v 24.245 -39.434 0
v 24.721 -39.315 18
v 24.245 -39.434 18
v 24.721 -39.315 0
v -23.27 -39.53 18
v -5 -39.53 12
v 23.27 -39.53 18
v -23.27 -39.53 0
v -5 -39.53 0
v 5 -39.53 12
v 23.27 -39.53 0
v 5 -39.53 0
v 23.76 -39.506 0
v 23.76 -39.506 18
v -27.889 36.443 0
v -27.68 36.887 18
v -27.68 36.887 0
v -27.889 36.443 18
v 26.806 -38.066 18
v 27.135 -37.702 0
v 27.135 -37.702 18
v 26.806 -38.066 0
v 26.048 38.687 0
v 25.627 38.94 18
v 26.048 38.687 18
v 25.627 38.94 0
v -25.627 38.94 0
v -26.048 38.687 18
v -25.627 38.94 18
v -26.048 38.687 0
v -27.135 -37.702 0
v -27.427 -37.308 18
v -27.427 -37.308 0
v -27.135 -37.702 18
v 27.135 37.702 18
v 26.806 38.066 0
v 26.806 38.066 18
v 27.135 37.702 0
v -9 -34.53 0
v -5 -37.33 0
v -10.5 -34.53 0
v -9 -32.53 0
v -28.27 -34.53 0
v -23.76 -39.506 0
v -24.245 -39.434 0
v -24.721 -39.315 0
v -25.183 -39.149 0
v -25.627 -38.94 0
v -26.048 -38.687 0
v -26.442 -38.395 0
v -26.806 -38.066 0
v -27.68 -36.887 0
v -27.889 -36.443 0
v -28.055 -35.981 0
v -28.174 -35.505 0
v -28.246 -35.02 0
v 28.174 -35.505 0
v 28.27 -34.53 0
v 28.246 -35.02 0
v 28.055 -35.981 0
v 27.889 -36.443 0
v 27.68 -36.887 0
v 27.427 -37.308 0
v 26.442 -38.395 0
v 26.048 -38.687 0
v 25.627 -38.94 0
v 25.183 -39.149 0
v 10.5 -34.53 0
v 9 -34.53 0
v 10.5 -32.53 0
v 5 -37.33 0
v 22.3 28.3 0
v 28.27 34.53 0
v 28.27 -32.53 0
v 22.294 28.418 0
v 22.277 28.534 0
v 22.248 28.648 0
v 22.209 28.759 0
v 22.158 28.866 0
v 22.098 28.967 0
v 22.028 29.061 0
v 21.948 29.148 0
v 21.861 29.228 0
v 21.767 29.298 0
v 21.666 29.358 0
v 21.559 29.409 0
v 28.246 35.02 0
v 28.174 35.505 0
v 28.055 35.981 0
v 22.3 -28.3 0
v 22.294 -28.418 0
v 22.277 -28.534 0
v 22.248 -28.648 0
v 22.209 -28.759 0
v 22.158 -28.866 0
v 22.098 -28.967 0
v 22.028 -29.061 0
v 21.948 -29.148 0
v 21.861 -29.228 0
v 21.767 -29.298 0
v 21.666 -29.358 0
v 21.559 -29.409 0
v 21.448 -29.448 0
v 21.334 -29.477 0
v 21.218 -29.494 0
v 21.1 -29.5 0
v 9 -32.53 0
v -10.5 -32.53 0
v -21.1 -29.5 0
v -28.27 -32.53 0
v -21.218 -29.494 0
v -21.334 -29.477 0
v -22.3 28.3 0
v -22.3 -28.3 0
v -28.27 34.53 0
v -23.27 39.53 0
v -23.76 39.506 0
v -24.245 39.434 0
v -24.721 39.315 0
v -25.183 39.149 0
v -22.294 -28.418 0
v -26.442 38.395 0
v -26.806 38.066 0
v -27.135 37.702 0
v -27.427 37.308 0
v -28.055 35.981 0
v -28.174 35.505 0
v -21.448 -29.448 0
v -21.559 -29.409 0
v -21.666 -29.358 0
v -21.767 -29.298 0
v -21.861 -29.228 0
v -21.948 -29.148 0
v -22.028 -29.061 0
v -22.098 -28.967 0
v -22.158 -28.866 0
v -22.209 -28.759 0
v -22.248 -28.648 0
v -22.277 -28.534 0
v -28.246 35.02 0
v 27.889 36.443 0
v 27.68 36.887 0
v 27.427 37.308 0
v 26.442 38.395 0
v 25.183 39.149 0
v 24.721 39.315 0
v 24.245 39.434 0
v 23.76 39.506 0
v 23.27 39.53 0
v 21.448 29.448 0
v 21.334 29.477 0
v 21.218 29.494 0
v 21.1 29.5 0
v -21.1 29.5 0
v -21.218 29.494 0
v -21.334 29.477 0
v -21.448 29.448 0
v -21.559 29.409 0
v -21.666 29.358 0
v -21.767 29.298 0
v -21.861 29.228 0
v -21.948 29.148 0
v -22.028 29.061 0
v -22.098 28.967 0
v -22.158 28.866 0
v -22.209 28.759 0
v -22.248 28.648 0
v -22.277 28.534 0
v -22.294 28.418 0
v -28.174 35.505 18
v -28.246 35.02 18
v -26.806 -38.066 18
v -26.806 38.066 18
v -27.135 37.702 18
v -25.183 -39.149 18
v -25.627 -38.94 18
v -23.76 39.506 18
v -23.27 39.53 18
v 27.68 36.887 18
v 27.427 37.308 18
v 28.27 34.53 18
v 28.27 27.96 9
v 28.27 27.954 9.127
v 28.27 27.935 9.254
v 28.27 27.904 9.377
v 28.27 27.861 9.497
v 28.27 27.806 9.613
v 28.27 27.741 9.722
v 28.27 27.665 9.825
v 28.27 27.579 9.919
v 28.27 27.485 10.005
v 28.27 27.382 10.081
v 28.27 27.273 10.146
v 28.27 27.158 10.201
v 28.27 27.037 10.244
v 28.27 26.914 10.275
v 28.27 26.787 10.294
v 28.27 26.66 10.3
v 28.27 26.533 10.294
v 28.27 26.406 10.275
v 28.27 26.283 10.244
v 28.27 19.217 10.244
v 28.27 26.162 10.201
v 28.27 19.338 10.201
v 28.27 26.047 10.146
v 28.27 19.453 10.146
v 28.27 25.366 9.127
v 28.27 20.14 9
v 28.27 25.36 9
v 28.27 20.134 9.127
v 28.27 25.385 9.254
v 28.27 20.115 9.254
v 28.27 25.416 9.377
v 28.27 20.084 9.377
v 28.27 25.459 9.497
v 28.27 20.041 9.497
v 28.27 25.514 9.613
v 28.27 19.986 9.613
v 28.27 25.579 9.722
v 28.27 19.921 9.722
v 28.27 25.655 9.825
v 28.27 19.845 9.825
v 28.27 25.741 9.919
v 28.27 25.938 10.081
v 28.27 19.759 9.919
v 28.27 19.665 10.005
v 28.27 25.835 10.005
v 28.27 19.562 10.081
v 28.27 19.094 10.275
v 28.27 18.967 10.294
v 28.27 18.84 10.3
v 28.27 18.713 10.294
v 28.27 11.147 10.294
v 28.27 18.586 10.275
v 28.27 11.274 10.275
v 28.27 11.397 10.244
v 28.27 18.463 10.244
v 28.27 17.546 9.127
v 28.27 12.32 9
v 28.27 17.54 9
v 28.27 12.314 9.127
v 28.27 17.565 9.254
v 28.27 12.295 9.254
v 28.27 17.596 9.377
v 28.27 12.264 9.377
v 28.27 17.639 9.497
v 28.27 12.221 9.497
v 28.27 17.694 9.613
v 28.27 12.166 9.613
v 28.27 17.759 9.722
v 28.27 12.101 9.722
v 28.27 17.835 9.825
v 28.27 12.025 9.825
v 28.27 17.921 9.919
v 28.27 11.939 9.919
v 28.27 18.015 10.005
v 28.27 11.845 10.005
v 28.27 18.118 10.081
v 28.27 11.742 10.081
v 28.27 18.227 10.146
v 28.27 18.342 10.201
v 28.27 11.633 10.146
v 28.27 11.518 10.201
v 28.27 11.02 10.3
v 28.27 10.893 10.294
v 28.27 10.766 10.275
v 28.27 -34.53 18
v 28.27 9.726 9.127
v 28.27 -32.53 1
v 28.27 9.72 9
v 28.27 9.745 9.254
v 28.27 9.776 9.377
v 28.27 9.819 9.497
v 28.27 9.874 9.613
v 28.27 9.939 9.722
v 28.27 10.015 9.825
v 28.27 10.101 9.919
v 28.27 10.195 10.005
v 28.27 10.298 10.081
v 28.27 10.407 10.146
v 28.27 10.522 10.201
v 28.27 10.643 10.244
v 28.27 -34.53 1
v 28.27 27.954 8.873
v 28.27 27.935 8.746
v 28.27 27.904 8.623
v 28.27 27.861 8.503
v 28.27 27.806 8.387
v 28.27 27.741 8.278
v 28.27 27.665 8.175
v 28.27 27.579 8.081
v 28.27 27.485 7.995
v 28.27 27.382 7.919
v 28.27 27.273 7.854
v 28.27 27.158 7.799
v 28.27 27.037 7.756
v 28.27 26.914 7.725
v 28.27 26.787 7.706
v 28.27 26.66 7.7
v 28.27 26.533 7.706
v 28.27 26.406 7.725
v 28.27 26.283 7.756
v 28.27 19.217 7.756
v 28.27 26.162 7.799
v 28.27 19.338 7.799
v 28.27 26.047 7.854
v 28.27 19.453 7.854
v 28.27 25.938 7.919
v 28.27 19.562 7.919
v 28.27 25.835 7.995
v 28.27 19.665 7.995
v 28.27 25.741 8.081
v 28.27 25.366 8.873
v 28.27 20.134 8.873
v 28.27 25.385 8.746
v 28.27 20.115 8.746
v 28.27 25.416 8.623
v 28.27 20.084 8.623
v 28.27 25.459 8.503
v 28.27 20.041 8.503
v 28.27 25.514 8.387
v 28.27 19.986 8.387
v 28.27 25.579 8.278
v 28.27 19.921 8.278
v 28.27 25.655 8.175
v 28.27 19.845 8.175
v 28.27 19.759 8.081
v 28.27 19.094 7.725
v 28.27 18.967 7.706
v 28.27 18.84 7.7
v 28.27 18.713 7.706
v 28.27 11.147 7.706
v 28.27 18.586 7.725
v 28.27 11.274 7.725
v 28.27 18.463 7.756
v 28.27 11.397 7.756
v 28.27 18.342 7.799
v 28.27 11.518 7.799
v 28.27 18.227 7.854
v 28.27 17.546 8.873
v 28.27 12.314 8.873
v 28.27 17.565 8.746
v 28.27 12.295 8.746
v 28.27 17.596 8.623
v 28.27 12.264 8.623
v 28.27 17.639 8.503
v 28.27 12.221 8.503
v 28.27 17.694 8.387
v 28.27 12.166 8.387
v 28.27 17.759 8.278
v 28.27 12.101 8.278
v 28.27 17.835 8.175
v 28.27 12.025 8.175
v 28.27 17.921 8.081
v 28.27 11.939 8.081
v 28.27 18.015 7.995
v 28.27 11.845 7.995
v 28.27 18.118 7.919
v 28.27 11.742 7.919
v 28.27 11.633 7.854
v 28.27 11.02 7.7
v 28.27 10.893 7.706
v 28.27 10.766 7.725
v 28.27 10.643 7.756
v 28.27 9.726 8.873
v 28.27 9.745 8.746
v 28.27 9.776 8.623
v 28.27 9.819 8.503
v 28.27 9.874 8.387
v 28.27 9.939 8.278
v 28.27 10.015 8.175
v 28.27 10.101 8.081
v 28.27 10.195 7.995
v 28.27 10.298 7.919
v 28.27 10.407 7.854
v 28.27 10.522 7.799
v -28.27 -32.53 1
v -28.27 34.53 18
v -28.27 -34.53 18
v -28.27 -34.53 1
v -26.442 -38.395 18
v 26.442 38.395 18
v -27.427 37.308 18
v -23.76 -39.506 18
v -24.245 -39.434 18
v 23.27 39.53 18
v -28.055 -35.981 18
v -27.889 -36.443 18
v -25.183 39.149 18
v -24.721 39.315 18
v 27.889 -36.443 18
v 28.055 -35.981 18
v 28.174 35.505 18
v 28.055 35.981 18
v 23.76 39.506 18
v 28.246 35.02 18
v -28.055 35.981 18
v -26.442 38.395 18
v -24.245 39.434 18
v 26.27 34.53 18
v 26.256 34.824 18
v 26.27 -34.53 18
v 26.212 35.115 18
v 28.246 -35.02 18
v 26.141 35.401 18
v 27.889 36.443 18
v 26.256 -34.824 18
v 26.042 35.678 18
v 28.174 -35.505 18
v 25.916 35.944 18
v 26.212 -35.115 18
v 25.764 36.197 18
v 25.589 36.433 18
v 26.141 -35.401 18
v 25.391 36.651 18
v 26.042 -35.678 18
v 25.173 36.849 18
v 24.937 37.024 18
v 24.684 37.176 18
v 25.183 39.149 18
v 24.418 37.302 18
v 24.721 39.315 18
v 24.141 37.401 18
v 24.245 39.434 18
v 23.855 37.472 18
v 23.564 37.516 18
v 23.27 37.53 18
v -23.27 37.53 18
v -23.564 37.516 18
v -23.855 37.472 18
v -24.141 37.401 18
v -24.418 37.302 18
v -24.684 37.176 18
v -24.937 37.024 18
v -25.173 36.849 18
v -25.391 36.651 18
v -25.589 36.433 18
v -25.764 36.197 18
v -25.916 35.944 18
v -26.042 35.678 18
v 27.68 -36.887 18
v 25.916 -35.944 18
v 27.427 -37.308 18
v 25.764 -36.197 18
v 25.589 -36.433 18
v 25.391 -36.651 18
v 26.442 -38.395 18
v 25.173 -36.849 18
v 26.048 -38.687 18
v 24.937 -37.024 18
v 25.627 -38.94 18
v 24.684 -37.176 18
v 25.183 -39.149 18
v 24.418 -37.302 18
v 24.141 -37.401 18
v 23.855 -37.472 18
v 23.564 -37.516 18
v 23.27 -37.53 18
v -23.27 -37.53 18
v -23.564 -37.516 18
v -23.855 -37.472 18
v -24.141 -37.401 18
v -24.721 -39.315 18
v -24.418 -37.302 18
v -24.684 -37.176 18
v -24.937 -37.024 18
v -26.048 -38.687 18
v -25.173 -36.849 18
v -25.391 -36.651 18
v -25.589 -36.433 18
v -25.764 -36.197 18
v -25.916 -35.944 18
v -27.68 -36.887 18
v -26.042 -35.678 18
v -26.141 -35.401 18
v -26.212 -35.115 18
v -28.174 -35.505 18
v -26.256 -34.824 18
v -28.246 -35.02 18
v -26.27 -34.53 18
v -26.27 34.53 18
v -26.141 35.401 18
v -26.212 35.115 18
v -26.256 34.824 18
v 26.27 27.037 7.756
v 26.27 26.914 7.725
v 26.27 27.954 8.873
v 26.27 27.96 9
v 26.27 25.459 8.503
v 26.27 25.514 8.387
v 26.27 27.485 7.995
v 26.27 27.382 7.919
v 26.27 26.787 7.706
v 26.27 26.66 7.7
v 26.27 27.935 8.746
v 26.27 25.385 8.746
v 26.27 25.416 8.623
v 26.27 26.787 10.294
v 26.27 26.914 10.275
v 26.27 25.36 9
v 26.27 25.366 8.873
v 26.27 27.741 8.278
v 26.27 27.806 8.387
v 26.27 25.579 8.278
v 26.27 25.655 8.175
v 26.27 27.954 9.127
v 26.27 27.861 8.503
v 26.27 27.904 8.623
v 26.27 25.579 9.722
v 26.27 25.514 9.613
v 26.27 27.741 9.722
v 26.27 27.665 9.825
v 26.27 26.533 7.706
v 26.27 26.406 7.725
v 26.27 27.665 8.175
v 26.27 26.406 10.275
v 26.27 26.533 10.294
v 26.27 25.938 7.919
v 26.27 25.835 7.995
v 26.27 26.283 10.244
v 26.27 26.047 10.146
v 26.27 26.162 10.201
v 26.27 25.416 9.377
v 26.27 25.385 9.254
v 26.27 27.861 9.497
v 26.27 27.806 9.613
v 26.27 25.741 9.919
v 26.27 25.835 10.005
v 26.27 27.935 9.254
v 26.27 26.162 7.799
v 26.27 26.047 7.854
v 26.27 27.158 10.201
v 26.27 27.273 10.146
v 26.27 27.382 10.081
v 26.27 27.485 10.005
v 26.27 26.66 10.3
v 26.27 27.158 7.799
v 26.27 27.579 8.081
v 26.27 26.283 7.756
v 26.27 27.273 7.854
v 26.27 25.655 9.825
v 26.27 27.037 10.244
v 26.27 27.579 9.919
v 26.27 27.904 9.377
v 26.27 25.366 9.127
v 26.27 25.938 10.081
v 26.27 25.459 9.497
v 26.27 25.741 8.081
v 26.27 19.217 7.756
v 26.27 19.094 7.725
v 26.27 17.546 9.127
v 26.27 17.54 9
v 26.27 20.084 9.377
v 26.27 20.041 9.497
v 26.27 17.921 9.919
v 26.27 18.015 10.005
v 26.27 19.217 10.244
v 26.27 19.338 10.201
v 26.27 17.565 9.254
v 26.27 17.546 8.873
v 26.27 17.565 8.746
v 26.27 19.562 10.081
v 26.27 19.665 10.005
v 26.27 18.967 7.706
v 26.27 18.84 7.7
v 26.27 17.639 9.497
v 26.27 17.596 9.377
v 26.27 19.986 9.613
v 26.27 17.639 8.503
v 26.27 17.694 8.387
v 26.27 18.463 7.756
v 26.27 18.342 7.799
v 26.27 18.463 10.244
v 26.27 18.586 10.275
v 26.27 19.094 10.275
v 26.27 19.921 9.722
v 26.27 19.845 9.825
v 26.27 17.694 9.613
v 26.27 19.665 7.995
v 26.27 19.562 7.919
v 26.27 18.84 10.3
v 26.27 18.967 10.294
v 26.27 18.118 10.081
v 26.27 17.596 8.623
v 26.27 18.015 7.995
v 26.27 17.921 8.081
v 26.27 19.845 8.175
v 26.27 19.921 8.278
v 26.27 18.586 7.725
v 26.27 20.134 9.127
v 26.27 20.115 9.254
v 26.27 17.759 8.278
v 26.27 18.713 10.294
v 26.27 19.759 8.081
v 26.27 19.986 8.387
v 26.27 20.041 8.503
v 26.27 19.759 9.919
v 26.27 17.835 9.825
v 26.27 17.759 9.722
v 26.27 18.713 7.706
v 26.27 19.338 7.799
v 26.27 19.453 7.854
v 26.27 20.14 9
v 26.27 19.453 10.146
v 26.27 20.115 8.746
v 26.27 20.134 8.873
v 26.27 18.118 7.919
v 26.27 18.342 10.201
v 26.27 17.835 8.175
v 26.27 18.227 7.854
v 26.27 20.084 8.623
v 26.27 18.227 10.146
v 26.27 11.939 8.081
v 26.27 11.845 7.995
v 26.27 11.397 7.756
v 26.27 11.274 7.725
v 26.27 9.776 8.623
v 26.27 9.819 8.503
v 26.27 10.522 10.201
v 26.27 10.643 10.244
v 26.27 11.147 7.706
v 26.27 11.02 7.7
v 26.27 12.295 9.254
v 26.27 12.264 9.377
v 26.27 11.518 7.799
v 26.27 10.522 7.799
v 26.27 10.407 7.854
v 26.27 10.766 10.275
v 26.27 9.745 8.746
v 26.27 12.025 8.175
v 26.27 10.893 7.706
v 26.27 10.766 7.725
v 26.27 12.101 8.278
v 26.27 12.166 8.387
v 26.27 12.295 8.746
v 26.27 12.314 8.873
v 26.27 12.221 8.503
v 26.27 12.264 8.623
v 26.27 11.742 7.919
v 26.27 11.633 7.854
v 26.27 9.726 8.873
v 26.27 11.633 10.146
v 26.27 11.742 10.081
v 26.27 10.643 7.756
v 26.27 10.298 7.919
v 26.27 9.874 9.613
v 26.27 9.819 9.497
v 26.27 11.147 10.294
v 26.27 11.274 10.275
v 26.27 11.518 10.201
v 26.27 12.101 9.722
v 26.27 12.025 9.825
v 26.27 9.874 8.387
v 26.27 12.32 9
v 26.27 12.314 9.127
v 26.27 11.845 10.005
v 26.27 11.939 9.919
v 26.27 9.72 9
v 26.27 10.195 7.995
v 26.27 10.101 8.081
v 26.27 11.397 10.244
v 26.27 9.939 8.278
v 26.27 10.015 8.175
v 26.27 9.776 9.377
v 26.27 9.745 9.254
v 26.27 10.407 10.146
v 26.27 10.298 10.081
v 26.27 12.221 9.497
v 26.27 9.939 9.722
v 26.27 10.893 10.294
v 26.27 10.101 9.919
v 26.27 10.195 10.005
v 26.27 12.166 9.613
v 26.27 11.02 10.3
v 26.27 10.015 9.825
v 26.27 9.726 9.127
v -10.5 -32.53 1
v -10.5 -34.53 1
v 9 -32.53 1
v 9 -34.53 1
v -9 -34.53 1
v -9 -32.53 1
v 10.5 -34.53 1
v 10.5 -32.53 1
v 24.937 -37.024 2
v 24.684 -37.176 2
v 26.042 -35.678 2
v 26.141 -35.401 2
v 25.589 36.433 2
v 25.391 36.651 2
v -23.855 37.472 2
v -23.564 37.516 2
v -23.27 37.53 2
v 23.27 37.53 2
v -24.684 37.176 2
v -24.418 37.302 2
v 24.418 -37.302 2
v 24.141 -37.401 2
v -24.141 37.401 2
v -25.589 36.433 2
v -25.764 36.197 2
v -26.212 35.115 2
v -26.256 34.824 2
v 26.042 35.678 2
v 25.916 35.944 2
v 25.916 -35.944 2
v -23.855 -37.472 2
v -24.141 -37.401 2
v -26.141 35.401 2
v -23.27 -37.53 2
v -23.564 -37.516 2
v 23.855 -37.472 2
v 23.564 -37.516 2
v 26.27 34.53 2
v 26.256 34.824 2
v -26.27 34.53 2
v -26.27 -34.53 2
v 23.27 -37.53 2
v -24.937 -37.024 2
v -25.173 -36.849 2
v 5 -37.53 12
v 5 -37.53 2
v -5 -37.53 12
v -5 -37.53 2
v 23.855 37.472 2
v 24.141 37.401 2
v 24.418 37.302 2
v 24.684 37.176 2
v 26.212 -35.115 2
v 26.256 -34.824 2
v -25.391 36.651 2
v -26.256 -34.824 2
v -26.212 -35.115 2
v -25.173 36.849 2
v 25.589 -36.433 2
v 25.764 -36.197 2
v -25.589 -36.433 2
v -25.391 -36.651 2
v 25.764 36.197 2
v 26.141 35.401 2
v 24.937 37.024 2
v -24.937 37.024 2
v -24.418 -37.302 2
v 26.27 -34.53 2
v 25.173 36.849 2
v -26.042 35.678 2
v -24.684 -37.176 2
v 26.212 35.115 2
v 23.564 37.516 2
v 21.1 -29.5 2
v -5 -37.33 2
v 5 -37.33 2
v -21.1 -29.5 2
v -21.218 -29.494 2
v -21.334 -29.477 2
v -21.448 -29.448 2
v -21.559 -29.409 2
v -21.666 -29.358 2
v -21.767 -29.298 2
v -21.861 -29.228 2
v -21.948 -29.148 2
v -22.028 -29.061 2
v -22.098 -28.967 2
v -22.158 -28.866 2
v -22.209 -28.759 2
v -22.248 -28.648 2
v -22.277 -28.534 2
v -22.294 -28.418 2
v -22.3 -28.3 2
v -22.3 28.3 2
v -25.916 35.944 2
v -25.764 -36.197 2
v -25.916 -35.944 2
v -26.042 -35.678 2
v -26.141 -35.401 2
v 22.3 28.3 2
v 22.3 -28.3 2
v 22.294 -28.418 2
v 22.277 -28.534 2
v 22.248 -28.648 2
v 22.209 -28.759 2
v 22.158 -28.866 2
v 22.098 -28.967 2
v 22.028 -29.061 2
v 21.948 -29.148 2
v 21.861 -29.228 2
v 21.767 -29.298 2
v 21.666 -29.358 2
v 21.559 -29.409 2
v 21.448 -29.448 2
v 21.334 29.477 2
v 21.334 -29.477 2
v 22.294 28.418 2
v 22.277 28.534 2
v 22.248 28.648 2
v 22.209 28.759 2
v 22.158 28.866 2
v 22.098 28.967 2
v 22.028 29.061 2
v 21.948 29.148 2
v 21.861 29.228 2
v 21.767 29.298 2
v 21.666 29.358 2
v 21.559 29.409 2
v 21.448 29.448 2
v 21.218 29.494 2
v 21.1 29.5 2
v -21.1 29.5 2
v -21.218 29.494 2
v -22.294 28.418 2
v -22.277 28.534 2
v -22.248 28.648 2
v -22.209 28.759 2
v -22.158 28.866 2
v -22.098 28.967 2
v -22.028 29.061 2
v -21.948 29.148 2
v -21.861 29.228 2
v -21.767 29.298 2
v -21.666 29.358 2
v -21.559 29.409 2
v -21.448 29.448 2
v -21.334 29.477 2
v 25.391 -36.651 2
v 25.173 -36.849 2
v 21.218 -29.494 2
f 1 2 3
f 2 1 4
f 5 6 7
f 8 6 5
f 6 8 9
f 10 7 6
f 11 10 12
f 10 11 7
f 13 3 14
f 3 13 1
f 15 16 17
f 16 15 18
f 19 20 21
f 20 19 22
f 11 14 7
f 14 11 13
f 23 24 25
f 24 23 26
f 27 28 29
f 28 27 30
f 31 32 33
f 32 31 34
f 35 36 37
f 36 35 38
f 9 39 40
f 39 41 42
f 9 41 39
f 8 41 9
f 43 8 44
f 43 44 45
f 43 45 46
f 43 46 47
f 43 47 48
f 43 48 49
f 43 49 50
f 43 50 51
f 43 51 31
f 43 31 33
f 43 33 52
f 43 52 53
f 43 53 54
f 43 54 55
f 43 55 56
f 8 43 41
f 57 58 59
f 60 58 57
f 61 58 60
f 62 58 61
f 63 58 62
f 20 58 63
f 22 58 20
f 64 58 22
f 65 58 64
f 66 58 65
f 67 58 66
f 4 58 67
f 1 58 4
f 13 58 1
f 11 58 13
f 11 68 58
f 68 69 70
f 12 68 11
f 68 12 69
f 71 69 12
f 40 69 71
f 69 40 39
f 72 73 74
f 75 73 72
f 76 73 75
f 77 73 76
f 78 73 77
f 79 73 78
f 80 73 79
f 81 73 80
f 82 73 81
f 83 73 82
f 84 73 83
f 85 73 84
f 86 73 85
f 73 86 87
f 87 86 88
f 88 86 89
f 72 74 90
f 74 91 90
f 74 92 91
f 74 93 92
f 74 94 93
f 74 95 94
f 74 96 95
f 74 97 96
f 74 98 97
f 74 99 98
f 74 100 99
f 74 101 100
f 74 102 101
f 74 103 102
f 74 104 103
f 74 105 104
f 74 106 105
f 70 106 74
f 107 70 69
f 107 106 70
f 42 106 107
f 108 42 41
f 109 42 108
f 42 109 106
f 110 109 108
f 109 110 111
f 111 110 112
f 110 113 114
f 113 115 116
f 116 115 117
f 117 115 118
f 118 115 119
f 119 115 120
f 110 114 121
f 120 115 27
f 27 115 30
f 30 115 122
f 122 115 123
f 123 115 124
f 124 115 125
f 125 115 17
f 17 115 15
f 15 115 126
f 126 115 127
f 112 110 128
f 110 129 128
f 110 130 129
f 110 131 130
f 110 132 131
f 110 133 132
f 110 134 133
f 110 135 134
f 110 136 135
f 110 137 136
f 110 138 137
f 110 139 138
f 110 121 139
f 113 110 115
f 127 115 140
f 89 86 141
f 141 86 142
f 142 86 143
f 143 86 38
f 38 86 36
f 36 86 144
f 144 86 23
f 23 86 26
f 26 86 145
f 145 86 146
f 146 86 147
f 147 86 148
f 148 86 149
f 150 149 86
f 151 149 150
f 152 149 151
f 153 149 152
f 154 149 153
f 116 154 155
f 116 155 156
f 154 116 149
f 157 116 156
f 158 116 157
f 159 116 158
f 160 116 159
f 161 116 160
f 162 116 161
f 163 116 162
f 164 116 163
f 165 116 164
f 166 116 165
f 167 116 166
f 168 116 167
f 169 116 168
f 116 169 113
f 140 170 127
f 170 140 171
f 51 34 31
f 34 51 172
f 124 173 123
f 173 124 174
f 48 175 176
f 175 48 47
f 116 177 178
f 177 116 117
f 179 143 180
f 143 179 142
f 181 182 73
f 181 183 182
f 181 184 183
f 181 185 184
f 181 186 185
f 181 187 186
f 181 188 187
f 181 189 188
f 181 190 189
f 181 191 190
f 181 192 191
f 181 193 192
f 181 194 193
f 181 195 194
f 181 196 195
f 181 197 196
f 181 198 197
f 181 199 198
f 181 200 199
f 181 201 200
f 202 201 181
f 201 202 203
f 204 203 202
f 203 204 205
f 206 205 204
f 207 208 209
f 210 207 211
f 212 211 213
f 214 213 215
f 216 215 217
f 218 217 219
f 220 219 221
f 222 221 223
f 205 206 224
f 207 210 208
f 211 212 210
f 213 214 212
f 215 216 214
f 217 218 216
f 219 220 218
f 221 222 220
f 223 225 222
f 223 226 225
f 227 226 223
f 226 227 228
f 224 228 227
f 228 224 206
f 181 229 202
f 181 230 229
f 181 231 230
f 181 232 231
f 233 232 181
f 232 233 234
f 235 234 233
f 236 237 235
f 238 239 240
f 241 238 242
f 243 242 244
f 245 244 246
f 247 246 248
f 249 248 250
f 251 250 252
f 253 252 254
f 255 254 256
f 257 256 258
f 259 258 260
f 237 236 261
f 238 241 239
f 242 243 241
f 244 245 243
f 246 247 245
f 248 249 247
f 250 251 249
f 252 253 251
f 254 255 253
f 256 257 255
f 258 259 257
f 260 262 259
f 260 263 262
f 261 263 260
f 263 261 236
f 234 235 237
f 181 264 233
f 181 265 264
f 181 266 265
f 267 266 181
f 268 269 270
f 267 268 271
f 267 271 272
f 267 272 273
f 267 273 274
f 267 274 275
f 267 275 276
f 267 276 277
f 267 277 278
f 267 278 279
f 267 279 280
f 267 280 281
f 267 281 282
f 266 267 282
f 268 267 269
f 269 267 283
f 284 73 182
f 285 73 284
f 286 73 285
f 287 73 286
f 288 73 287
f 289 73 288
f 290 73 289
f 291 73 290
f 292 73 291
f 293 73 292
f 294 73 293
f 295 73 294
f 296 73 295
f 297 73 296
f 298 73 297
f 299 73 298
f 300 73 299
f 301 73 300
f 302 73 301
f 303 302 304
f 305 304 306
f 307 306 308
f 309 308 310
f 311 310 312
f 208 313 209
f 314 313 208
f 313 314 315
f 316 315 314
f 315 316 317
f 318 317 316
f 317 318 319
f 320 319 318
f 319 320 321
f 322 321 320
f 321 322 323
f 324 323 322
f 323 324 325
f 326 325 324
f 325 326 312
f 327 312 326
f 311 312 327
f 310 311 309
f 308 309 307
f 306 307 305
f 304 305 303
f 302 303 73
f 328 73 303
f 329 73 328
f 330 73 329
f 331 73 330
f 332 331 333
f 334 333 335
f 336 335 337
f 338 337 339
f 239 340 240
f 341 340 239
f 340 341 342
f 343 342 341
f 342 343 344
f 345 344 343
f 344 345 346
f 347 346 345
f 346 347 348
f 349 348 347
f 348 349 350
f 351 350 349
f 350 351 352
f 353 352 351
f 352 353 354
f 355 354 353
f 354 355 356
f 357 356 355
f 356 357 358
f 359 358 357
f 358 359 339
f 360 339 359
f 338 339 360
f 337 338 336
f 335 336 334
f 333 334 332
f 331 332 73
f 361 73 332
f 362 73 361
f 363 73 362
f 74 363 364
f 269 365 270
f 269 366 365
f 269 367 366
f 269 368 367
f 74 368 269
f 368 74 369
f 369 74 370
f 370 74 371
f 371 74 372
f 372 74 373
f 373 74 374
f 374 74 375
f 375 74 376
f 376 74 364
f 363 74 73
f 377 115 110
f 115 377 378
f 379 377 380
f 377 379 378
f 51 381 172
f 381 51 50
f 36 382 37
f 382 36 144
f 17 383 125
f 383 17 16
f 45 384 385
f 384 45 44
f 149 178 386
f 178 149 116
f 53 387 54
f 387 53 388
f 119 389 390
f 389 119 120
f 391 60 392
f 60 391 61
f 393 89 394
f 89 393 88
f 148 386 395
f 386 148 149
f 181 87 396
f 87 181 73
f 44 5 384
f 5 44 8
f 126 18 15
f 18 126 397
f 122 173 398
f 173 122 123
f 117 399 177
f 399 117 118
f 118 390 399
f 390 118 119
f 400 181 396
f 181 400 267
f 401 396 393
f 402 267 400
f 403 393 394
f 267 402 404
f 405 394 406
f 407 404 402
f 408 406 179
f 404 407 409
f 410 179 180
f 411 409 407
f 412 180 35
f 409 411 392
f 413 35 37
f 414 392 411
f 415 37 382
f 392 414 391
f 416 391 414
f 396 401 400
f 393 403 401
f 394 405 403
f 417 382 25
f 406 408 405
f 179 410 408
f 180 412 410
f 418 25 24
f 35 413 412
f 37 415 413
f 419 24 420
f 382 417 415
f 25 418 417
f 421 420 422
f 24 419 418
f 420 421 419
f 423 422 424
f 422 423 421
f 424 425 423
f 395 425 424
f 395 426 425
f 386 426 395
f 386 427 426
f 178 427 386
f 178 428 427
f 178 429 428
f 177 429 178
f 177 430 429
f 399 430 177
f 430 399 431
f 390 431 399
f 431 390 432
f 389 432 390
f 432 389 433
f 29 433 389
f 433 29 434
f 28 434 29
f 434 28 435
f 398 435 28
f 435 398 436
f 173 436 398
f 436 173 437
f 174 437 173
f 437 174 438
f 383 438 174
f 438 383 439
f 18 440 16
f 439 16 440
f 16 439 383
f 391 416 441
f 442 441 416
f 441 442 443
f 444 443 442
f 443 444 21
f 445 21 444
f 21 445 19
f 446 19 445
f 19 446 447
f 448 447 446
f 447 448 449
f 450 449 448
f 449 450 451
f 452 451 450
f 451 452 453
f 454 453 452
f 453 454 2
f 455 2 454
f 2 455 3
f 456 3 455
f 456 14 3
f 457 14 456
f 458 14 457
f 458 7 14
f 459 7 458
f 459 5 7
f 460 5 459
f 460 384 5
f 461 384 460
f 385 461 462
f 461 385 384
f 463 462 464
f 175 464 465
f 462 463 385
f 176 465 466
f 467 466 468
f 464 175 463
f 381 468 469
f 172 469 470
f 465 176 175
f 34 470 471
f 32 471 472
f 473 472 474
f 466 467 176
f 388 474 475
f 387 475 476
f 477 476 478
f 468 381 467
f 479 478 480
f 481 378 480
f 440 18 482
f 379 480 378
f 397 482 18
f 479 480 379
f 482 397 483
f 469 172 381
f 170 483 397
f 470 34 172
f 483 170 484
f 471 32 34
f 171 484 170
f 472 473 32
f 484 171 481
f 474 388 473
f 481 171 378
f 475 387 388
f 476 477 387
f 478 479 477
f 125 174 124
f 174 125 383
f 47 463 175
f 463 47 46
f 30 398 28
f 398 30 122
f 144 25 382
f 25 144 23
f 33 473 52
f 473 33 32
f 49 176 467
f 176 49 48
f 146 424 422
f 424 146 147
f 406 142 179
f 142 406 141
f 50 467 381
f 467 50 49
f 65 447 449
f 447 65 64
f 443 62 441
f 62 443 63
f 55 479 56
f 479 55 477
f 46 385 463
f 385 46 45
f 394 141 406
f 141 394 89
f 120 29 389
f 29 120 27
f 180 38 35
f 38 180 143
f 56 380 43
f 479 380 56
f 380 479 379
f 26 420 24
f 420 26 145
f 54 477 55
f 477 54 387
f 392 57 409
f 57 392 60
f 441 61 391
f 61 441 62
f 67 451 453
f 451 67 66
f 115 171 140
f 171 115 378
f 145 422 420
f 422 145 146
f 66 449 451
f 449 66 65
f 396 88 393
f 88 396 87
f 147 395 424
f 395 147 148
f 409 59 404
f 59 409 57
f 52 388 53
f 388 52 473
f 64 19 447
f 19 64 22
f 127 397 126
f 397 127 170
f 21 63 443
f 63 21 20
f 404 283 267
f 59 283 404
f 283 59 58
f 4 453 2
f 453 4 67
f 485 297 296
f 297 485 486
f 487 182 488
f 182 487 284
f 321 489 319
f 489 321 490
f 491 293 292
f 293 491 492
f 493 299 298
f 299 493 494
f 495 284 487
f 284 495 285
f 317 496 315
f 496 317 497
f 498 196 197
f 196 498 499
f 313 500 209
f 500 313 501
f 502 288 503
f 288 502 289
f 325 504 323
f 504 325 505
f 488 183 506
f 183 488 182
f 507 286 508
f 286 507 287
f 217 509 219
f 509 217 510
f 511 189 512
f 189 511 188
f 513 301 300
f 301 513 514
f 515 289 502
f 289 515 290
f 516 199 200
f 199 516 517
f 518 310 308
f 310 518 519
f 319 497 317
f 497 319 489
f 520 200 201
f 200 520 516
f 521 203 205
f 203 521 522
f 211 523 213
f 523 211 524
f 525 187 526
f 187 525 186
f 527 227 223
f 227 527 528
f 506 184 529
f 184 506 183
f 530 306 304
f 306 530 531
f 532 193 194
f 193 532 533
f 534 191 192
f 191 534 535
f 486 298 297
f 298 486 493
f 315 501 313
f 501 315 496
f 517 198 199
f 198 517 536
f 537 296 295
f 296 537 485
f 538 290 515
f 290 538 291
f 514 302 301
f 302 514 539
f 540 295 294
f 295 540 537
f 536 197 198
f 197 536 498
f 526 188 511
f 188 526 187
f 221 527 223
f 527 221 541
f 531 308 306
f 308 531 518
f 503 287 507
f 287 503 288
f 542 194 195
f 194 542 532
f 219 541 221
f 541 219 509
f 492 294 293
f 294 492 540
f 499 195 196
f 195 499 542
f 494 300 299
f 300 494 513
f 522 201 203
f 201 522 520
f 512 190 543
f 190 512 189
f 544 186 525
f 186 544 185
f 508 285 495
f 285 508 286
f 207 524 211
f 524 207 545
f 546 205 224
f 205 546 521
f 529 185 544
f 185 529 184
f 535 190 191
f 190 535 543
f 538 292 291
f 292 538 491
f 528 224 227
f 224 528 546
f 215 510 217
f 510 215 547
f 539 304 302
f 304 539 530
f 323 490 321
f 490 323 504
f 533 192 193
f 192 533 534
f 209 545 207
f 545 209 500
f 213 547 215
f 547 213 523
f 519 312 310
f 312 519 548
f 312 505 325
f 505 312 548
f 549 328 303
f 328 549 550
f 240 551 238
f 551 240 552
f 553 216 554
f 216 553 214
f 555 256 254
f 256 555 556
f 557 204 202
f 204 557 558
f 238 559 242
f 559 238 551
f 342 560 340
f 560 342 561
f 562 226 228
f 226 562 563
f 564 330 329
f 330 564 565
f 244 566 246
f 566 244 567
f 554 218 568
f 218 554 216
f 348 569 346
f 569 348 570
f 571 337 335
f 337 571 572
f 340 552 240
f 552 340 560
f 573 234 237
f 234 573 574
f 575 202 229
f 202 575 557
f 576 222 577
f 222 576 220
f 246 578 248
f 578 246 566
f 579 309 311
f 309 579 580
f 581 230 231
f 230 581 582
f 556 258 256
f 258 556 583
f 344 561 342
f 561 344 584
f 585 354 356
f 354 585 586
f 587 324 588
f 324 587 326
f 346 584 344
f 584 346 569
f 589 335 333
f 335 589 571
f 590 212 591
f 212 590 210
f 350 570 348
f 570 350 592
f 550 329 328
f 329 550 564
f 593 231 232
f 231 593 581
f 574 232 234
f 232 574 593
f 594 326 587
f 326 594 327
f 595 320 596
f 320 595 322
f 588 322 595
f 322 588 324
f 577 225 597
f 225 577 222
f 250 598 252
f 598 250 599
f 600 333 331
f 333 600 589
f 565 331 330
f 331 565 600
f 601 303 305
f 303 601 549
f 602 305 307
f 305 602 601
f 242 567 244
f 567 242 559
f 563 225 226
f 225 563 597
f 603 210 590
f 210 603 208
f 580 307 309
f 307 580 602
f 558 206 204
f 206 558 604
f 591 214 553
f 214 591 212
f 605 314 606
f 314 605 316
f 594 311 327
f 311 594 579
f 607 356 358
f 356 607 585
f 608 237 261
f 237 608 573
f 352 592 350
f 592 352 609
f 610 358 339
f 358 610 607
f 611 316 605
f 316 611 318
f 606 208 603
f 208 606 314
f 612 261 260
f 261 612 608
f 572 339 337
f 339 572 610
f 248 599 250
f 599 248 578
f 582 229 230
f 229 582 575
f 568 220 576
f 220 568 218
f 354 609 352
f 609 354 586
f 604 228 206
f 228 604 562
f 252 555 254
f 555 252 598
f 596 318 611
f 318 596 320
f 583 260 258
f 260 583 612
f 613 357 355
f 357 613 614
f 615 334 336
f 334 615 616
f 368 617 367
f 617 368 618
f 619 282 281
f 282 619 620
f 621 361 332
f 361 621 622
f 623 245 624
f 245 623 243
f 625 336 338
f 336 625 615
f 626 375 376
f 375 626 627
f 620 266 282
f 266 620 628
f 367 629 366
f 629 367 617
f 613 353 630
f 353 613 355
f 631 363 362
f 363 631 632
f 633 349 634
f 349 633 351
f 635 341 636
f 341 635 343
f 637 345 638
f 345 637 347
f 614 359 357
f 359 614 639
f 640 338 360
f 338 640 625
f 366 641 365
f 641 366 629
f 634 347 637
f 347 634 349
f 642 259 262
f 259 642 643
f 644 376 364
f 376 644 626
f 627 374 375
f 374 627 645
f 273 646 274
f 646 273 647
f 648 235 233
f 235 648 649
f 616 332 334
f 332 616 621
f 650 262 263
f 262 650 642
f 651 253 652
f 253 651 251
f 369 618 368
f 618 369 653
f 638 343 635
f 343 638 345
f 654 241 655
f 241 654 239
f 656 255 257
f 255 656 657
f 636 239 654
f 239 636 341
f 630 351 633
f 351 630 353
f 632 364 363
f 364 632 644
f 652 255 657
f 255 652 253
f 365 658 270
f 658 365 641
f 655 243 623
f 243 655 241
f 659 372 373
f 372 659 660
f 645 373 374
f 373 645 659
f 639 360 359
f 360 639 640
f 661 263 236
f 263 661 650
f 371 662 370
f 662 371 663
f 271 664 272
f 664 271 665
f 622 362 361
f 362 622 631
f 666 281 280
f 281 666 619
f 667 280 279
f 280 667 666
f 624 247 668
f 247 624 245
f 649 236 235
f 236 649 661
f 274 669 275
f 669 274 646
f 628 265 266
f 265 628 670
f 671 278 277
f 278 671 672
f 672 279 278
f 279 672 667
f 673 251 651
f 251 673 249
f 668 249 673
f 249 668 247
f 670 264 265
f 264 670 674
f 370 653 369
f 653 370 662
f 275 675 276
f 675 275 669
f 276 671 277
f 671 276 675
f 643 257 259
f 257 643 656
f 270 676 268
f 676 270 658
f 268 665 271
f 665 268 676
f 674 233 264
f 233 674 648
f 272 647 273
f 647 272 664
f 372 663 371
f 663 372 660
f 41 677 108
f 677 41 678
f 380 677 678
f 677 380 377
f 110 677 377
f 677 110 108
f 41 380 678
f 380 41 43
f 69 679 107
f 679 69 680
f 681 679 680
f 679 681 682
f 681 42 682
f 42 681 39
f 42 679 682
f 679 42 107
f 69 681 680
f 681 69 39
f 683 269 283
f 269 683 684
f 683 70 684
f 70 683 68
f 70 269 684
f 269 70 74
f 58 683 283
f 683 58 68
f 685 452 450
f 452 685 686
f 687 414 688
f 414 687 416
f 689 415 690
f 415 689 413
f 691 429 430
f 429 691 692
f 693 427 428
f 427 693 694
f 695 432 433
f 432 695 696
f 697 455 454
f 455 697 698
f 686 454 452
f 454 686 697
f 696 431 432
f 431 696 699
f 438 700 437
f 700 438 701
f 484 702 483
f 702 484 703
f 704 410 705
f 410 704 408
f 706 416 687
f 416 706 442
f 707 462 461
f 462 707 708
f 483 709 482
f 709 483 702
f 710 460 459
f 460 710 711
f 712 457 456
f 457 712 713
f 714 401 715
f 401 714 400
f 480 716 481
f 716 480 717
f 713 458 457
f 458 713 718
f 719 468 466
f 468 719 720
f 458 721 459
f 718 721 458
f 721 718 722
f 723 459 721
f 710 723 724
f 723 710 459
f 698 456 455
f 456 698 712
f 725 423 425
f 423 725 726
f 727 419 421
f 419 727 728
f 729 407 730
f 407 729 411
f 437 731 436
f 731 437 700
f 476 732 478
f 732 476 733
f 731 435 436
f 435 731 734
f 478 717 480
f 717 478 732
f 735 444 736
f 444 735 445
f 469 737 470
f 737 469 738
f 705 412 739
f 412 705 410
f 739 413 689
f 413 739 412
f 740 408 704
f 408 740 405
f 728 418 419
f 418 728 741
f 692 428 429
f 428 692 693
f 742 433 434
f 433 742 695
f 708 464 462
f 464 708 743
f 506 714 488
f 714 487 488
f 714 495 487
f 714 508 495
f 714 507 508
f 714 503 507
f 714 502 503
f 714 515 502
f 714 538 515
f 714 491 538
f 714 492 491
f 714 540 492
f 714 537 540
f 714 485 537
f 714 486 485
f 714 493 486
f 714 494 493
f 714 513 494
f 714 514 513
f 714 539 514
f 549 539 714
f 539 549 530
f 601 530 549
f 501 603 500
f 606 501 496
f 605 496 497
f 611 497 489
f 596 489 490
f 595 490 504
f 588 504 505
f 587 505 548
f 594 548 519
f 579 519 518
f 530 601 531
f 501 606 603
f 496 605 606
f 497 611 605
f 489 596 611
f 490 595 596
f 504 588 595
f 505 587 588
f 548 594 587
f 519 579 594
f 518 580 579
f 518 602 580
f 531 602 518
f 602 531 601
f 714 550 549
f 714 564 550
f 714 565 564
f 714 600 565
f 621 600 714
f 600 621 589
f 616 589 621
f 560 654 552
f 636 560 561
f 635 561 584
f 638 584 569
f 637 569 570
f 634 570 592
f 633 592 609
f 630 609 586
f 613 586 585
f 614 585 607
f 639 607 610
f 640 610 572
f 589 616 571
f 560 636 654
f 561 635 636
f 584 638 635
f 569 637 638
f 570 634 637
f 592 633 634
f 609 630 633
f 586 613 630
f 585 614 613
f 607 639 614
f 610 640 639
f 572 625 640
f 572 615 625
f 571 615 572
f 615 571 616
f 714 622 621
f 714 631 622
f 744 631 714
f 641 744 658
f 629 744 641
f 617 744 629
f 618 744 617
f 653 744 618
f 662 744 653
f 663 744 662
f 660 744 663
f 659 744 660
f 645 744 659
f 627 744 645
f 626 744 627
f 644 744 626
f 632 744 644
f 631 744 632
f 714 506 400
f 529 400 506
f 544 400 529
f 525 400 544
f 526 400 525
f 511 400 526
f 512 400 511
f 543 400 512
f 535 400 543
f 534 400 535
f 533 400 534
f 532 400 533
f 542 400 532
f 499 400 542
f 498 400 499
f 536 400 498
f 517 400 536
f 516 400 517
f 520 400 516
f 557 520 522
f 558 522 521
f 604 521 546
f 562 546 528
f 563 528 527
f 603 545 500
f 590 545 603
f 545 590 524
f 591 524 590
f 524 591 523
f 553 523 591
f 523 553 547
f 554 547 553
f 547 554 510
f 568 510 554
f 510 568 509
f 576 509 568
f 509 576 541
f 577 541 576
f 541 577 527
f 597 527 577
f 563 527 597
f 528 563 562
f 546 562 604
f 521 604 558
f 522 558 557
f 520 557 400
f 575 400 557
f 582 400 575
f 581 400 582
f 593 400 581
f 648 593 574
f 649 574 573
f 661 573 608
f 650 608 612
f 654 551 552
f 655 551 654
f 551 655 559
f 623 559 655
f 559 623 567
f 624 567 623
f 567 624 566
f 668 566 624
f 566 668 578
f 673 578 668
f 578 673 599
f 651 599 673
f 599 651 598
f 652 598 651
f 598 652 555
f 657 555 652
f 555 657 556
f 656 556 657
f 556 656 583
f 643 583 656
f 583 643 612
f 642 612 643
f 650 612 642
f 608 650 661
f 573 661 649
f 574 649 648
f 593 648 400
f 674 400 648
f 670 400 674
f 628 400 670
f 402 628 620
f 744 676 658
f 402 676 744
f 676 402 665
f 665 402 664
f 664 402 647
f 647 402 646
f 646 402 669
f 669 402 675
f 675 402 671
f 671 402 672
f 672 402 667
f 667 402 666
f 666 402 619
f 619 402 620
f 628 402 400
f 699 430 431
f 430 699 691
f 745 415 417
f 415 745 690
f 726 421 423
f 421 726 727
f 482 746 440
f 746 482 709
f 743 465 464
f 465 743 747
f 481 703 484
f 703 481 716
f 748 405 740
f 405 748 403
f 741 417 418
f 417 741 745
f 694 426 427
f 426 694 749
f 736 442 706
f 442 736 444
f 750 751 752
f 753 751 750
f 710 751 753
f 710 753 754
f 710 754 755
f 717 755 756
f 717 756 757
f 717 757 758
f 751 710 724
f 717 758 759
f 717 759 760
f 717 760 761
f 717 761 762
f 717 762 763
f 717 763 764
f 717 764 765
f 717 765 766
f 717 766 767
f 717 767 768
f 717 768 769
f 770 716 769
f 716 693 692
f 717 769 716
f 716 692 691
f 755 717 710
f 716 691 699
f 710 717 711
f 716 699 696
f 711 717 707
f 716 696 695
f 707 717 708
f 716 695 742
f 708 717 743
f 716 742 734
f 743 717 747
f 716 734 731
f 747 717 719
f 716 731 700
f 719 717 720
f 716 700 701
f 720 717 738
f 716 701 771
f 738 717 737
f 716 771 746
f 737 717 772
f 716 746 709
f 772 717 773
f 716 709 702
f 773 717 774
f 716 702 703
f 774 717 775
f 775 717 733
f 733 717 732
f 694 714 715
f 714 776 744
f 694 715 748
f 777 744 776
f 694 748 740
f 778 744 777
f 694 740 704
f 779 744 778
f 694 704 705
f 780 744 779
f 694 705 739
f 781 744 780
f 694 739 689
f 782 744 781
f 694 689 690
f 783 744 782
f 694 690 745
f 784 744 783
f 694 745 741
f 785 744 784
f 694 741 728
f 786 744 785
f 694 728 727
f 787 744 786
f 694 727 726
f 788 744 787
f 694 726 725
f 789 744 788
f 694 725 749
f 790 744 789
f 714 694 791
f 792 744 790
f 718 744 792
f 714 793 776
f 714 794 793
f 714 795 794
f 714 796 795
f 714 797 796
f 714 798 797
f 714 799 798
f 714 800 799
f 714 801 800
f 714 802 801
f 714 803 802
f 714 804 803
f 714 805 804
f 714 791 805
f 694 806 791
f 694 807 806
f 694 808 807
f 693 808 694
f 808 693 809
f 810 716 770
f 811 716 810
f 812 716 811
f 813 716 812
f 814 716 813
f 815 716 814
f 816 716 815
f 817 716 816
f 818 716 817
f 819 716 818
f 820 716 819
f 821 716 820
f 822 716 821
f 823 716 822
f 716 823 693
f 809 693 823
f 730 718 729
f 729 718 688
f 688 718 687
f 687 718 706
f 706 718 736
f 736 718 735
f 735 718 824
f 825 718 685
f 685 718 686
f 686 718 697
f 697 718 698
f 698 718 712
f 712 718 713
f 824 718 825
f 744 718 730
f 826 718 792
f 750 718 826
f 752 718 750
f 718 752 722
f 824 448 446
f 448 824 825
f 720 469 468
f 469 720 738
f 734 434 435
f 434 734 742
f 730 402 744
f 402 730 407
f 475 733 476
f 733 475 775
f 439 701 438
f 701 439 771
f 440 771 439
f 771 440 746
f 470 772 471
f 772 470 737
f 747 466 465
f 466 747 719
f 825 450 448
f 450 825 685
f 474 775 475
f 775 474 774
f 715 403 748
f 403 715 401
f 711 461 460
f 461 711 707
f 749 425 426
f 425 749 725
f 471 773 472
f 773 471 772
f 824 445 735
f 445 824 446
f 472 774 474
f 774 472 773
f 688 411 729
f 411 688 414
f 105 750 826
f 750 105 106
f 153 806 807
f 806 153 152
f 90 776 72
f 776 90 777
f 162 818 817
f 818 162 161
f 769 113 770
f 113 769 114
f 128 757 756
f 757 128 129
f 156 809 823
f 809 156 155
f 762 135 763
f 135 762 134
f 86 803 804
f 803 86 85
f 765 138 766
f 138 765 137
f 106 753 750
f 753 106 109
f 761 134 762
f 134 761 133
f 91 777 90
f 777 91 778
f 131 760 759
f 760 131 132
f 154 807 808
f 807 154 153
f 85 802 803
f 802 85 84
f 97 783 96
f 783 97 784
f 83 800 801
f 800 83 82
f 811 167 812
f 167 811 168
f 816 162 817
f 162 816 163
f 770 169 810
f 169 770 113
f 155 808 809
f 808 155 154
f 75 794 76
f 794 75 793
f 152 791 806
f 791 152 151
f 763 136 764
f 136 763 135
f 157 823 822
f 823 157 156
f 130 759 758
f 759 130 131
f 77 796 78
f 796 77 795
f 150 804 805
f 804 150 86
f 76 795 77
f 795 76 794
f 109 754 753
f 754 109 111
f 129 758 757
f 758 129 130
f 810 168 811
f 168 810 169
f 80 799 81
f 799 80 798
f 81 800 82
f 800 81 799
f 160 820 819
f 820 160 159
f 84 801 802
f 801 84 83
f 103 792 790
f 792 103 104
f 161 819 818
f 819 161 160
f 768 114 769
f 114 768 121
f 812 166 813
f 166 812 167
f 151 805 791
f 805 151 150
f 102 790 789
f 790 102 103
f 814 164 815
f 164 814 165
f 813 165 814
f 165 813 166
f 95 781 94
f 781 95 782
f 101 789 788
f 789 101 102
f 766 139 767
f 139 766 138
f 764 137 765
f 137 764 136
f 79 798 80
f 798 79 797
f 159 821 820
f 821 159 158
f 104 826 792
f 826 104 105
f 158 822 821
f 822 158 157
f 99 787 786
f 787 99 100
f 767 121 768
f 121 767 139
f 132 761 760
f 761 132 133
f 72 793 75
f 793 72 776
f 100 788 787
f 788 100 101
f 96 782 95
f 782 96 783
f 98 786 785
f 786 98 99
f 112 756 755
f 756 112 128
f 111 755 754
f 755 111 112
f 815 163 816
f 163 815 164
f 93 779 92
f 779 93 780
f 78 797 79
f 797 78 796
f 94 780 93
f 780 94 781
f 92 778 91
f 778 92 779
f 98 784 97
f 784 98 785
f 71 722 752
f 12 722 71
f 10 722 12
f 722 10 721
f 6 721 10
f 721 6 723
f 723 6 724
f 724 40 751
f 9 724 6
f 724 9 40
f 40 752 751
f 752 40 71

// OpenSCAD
// Air Quality Monitor front shell - Steps 3-4 (OpenSCAD)
// Units: mm
$fn = 64;

// Display module dimensions (from Waveshare 2D diagram)
tp_w = 50.54;
tp_h = 73.06;
tp_corner_rad = 2.0;
touch_visible_w = 43.80;
touch_visible_h = 58.20;
pcb_w = 49.90;
pcb_h = 69.00;

// Shell parameters
wall_thk = 2.0;
bezel_margin = 3.0;
front_shell_w = tp_w + 2 * bezel_margin;
front_shell_h = tp_h + 2 * bezel_margin;
front_shell_d = 18.0;        // Front shell depth (tunable)
front_shell_rad = tp_corner_rad + bezel_margin;
face_thk = 2.0;              // Front face thickness

// Window cutout
window_clear = 0.4;
window_w = touch_visible_w + 2 * window_clear;
window_h = touch_visible_h + 2 * window_clear;
window_rad = 1.2;

// Button access (from diagram) - side press
button_count = 3;
button_hole_d = 2.6;
button_top_offset_board = 7.84; // Distance from board top to first button center
button_pitch = 7.82;            // Vertical pitch between button centers
button_edge_offset_board = 0.0; // Distance from board edge to button center
button_hole_len = 4.0;          // Length of side access hole

// Front intake vent slots
front_vent_slot_w = 18.0;
front_vent_slot_h = 2.0;
front_vent_slot_gap = 1.5;
front_vent_slot_count = 3;
front_vent_offset_y = 6.0;   // Distance from bottom edge to slot center

// Display board mounting
screw_d = 2.5;               // M2.5
screw_clear_d = 2.7;
boss_wall = 1.2;
boss_od = screw_d + 2 * boss_wall;
standoff_h = 4.0;
mount_hole_spacing_x = 41.00;
mount_hole_spacing_y = 60.00;

// USB port clearance (bottom)
usb_cut_w = 10.0;
usb_cut_h = 4.0;
usb_cut_d = 12.0;

module rounded_rect(w, h, r) {
  offset(r = r) square([w - 2 * r, h - 2 * r], center = true);
}

module standoff_at(x, y) {
  translate([x, y, face_thk])
    difference() {
      cylinder(h = standoff_h, d = boss_od);
      translate([0, 0, -0.1])
        cylinder(h = standoff_h + 0.2, d = screw_clear_d);
    }
}

module front_shell() {
  inner_w = front_shell_w - 2 * wall_thk;
  inner_h = front_shell_h - 2 * wall_thk;
  inner_r = max(front_shell_rad - wall_thk, 0.6);
  board_top_offset = (tp_h - pcb_h) / 2;
  board_side_offset = (tp_w - pcb_w) / 2;
  button_top_offset_y = bezel_margin + board_top_offset + button_top_offset_board;
  button_edge_offset_x = bezel_margin + board_side_offset + button_edge_offset_board;

  difference() {
    union() {
      // Outer body
      linear_extrude(height = front_shell_d)
        rounded_rect(front_shell_w, front_shell_h, front_shell_rad);

      // Mount standoffs (board centered)
      standoff_at(mount_hole_spacing_x / 2, mount_hole_spacing_y / 2);
      standoff_at(-mount_hole_spacing_x / 2, mount_hole_spacing_y / 2);
      standoff_at(mount_hole_spacing_x / 2, -mount_hole_spacing_y / 2);
      standoff_at(-mount_hole_spacing_x / 2, -mount_hole_spacing_y / 2);
    }

    // Inner cavity (open back)
    translate([0, 0, face_thk])
      linear_extrude(height = front_shell_d - face_thk)
        rounded_rect(inner_w, inner_h, inner_r);

    // Display window opening
    translate([0, 0, -0.1])
      linear_extrude(height = face_thk + 0.2)
        rounded_rect(window_w, window_h, window_rad);

    // Side button access holes (right side)
    for (i = [0 : button_count - 1]) {
      y_pos = front_shell_h / 2 - button_top_offset_y - i * button_pitch;
      x_pos = front_shell_w / 2 - wall_thk / 2;
      translate([x_pos, y_pos, front_shell_d / 2])
        rotate([0, 90, 0])
          cylinder(h = button_hole_len, d = button_hole_d, center = true);
    }

    // Front intake vent slots
    slot_total_w = front_vent_slot_count * front_vent_slot_w
                   + (front_vent_slot_count - 1) * front_vent_slot_gap;
    slot_start_x = -slot_total_w / 2 + front_vent_slot_w / 2;
    for (i = [0 : front_vent_slot_count - 1]) {
      x_pos = slot_start_x + i * (front_vent_slot_w + front_vent_slot_gap);
      y_pos = -front_shell_h / 2 + front_vent_offset_y;
      translate([x_pos, y_pos, -0.1])
        cube([front_vent_slot_w, front_vent_slot_h, face_thk + 0.2], center = true);
    }

    // USB port opening on bottom edge
    translate([0, -front_shell_h / 2 + wall_thk / 2, usb_cut_d / 2])
      cube([usb_cut_w, wall_thk + 0.4, usb_cut_d], center = true);
  }
}

front_shell();
